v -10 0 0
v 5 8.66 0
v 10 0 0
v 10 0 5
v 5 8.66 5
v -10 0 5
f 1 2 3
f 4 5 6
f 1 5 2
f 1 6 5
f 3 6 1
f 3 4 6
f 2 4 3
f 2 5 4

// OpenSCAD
module pentagon(radius, height) {
  linear_extrude(height = height)
    polygon(points = [
      [radius * cos(360), radius * sin(360)],
      [radius * cos(540), radius * sin(540)],
      [radius * cos(720), radius * sin(720)],
      [radius * cos(900), radius * sin(900)],
      [radius * cos(1140), radius * sin(1140)]
    ]);
}

pentagon(radius = 10, height = 5);
